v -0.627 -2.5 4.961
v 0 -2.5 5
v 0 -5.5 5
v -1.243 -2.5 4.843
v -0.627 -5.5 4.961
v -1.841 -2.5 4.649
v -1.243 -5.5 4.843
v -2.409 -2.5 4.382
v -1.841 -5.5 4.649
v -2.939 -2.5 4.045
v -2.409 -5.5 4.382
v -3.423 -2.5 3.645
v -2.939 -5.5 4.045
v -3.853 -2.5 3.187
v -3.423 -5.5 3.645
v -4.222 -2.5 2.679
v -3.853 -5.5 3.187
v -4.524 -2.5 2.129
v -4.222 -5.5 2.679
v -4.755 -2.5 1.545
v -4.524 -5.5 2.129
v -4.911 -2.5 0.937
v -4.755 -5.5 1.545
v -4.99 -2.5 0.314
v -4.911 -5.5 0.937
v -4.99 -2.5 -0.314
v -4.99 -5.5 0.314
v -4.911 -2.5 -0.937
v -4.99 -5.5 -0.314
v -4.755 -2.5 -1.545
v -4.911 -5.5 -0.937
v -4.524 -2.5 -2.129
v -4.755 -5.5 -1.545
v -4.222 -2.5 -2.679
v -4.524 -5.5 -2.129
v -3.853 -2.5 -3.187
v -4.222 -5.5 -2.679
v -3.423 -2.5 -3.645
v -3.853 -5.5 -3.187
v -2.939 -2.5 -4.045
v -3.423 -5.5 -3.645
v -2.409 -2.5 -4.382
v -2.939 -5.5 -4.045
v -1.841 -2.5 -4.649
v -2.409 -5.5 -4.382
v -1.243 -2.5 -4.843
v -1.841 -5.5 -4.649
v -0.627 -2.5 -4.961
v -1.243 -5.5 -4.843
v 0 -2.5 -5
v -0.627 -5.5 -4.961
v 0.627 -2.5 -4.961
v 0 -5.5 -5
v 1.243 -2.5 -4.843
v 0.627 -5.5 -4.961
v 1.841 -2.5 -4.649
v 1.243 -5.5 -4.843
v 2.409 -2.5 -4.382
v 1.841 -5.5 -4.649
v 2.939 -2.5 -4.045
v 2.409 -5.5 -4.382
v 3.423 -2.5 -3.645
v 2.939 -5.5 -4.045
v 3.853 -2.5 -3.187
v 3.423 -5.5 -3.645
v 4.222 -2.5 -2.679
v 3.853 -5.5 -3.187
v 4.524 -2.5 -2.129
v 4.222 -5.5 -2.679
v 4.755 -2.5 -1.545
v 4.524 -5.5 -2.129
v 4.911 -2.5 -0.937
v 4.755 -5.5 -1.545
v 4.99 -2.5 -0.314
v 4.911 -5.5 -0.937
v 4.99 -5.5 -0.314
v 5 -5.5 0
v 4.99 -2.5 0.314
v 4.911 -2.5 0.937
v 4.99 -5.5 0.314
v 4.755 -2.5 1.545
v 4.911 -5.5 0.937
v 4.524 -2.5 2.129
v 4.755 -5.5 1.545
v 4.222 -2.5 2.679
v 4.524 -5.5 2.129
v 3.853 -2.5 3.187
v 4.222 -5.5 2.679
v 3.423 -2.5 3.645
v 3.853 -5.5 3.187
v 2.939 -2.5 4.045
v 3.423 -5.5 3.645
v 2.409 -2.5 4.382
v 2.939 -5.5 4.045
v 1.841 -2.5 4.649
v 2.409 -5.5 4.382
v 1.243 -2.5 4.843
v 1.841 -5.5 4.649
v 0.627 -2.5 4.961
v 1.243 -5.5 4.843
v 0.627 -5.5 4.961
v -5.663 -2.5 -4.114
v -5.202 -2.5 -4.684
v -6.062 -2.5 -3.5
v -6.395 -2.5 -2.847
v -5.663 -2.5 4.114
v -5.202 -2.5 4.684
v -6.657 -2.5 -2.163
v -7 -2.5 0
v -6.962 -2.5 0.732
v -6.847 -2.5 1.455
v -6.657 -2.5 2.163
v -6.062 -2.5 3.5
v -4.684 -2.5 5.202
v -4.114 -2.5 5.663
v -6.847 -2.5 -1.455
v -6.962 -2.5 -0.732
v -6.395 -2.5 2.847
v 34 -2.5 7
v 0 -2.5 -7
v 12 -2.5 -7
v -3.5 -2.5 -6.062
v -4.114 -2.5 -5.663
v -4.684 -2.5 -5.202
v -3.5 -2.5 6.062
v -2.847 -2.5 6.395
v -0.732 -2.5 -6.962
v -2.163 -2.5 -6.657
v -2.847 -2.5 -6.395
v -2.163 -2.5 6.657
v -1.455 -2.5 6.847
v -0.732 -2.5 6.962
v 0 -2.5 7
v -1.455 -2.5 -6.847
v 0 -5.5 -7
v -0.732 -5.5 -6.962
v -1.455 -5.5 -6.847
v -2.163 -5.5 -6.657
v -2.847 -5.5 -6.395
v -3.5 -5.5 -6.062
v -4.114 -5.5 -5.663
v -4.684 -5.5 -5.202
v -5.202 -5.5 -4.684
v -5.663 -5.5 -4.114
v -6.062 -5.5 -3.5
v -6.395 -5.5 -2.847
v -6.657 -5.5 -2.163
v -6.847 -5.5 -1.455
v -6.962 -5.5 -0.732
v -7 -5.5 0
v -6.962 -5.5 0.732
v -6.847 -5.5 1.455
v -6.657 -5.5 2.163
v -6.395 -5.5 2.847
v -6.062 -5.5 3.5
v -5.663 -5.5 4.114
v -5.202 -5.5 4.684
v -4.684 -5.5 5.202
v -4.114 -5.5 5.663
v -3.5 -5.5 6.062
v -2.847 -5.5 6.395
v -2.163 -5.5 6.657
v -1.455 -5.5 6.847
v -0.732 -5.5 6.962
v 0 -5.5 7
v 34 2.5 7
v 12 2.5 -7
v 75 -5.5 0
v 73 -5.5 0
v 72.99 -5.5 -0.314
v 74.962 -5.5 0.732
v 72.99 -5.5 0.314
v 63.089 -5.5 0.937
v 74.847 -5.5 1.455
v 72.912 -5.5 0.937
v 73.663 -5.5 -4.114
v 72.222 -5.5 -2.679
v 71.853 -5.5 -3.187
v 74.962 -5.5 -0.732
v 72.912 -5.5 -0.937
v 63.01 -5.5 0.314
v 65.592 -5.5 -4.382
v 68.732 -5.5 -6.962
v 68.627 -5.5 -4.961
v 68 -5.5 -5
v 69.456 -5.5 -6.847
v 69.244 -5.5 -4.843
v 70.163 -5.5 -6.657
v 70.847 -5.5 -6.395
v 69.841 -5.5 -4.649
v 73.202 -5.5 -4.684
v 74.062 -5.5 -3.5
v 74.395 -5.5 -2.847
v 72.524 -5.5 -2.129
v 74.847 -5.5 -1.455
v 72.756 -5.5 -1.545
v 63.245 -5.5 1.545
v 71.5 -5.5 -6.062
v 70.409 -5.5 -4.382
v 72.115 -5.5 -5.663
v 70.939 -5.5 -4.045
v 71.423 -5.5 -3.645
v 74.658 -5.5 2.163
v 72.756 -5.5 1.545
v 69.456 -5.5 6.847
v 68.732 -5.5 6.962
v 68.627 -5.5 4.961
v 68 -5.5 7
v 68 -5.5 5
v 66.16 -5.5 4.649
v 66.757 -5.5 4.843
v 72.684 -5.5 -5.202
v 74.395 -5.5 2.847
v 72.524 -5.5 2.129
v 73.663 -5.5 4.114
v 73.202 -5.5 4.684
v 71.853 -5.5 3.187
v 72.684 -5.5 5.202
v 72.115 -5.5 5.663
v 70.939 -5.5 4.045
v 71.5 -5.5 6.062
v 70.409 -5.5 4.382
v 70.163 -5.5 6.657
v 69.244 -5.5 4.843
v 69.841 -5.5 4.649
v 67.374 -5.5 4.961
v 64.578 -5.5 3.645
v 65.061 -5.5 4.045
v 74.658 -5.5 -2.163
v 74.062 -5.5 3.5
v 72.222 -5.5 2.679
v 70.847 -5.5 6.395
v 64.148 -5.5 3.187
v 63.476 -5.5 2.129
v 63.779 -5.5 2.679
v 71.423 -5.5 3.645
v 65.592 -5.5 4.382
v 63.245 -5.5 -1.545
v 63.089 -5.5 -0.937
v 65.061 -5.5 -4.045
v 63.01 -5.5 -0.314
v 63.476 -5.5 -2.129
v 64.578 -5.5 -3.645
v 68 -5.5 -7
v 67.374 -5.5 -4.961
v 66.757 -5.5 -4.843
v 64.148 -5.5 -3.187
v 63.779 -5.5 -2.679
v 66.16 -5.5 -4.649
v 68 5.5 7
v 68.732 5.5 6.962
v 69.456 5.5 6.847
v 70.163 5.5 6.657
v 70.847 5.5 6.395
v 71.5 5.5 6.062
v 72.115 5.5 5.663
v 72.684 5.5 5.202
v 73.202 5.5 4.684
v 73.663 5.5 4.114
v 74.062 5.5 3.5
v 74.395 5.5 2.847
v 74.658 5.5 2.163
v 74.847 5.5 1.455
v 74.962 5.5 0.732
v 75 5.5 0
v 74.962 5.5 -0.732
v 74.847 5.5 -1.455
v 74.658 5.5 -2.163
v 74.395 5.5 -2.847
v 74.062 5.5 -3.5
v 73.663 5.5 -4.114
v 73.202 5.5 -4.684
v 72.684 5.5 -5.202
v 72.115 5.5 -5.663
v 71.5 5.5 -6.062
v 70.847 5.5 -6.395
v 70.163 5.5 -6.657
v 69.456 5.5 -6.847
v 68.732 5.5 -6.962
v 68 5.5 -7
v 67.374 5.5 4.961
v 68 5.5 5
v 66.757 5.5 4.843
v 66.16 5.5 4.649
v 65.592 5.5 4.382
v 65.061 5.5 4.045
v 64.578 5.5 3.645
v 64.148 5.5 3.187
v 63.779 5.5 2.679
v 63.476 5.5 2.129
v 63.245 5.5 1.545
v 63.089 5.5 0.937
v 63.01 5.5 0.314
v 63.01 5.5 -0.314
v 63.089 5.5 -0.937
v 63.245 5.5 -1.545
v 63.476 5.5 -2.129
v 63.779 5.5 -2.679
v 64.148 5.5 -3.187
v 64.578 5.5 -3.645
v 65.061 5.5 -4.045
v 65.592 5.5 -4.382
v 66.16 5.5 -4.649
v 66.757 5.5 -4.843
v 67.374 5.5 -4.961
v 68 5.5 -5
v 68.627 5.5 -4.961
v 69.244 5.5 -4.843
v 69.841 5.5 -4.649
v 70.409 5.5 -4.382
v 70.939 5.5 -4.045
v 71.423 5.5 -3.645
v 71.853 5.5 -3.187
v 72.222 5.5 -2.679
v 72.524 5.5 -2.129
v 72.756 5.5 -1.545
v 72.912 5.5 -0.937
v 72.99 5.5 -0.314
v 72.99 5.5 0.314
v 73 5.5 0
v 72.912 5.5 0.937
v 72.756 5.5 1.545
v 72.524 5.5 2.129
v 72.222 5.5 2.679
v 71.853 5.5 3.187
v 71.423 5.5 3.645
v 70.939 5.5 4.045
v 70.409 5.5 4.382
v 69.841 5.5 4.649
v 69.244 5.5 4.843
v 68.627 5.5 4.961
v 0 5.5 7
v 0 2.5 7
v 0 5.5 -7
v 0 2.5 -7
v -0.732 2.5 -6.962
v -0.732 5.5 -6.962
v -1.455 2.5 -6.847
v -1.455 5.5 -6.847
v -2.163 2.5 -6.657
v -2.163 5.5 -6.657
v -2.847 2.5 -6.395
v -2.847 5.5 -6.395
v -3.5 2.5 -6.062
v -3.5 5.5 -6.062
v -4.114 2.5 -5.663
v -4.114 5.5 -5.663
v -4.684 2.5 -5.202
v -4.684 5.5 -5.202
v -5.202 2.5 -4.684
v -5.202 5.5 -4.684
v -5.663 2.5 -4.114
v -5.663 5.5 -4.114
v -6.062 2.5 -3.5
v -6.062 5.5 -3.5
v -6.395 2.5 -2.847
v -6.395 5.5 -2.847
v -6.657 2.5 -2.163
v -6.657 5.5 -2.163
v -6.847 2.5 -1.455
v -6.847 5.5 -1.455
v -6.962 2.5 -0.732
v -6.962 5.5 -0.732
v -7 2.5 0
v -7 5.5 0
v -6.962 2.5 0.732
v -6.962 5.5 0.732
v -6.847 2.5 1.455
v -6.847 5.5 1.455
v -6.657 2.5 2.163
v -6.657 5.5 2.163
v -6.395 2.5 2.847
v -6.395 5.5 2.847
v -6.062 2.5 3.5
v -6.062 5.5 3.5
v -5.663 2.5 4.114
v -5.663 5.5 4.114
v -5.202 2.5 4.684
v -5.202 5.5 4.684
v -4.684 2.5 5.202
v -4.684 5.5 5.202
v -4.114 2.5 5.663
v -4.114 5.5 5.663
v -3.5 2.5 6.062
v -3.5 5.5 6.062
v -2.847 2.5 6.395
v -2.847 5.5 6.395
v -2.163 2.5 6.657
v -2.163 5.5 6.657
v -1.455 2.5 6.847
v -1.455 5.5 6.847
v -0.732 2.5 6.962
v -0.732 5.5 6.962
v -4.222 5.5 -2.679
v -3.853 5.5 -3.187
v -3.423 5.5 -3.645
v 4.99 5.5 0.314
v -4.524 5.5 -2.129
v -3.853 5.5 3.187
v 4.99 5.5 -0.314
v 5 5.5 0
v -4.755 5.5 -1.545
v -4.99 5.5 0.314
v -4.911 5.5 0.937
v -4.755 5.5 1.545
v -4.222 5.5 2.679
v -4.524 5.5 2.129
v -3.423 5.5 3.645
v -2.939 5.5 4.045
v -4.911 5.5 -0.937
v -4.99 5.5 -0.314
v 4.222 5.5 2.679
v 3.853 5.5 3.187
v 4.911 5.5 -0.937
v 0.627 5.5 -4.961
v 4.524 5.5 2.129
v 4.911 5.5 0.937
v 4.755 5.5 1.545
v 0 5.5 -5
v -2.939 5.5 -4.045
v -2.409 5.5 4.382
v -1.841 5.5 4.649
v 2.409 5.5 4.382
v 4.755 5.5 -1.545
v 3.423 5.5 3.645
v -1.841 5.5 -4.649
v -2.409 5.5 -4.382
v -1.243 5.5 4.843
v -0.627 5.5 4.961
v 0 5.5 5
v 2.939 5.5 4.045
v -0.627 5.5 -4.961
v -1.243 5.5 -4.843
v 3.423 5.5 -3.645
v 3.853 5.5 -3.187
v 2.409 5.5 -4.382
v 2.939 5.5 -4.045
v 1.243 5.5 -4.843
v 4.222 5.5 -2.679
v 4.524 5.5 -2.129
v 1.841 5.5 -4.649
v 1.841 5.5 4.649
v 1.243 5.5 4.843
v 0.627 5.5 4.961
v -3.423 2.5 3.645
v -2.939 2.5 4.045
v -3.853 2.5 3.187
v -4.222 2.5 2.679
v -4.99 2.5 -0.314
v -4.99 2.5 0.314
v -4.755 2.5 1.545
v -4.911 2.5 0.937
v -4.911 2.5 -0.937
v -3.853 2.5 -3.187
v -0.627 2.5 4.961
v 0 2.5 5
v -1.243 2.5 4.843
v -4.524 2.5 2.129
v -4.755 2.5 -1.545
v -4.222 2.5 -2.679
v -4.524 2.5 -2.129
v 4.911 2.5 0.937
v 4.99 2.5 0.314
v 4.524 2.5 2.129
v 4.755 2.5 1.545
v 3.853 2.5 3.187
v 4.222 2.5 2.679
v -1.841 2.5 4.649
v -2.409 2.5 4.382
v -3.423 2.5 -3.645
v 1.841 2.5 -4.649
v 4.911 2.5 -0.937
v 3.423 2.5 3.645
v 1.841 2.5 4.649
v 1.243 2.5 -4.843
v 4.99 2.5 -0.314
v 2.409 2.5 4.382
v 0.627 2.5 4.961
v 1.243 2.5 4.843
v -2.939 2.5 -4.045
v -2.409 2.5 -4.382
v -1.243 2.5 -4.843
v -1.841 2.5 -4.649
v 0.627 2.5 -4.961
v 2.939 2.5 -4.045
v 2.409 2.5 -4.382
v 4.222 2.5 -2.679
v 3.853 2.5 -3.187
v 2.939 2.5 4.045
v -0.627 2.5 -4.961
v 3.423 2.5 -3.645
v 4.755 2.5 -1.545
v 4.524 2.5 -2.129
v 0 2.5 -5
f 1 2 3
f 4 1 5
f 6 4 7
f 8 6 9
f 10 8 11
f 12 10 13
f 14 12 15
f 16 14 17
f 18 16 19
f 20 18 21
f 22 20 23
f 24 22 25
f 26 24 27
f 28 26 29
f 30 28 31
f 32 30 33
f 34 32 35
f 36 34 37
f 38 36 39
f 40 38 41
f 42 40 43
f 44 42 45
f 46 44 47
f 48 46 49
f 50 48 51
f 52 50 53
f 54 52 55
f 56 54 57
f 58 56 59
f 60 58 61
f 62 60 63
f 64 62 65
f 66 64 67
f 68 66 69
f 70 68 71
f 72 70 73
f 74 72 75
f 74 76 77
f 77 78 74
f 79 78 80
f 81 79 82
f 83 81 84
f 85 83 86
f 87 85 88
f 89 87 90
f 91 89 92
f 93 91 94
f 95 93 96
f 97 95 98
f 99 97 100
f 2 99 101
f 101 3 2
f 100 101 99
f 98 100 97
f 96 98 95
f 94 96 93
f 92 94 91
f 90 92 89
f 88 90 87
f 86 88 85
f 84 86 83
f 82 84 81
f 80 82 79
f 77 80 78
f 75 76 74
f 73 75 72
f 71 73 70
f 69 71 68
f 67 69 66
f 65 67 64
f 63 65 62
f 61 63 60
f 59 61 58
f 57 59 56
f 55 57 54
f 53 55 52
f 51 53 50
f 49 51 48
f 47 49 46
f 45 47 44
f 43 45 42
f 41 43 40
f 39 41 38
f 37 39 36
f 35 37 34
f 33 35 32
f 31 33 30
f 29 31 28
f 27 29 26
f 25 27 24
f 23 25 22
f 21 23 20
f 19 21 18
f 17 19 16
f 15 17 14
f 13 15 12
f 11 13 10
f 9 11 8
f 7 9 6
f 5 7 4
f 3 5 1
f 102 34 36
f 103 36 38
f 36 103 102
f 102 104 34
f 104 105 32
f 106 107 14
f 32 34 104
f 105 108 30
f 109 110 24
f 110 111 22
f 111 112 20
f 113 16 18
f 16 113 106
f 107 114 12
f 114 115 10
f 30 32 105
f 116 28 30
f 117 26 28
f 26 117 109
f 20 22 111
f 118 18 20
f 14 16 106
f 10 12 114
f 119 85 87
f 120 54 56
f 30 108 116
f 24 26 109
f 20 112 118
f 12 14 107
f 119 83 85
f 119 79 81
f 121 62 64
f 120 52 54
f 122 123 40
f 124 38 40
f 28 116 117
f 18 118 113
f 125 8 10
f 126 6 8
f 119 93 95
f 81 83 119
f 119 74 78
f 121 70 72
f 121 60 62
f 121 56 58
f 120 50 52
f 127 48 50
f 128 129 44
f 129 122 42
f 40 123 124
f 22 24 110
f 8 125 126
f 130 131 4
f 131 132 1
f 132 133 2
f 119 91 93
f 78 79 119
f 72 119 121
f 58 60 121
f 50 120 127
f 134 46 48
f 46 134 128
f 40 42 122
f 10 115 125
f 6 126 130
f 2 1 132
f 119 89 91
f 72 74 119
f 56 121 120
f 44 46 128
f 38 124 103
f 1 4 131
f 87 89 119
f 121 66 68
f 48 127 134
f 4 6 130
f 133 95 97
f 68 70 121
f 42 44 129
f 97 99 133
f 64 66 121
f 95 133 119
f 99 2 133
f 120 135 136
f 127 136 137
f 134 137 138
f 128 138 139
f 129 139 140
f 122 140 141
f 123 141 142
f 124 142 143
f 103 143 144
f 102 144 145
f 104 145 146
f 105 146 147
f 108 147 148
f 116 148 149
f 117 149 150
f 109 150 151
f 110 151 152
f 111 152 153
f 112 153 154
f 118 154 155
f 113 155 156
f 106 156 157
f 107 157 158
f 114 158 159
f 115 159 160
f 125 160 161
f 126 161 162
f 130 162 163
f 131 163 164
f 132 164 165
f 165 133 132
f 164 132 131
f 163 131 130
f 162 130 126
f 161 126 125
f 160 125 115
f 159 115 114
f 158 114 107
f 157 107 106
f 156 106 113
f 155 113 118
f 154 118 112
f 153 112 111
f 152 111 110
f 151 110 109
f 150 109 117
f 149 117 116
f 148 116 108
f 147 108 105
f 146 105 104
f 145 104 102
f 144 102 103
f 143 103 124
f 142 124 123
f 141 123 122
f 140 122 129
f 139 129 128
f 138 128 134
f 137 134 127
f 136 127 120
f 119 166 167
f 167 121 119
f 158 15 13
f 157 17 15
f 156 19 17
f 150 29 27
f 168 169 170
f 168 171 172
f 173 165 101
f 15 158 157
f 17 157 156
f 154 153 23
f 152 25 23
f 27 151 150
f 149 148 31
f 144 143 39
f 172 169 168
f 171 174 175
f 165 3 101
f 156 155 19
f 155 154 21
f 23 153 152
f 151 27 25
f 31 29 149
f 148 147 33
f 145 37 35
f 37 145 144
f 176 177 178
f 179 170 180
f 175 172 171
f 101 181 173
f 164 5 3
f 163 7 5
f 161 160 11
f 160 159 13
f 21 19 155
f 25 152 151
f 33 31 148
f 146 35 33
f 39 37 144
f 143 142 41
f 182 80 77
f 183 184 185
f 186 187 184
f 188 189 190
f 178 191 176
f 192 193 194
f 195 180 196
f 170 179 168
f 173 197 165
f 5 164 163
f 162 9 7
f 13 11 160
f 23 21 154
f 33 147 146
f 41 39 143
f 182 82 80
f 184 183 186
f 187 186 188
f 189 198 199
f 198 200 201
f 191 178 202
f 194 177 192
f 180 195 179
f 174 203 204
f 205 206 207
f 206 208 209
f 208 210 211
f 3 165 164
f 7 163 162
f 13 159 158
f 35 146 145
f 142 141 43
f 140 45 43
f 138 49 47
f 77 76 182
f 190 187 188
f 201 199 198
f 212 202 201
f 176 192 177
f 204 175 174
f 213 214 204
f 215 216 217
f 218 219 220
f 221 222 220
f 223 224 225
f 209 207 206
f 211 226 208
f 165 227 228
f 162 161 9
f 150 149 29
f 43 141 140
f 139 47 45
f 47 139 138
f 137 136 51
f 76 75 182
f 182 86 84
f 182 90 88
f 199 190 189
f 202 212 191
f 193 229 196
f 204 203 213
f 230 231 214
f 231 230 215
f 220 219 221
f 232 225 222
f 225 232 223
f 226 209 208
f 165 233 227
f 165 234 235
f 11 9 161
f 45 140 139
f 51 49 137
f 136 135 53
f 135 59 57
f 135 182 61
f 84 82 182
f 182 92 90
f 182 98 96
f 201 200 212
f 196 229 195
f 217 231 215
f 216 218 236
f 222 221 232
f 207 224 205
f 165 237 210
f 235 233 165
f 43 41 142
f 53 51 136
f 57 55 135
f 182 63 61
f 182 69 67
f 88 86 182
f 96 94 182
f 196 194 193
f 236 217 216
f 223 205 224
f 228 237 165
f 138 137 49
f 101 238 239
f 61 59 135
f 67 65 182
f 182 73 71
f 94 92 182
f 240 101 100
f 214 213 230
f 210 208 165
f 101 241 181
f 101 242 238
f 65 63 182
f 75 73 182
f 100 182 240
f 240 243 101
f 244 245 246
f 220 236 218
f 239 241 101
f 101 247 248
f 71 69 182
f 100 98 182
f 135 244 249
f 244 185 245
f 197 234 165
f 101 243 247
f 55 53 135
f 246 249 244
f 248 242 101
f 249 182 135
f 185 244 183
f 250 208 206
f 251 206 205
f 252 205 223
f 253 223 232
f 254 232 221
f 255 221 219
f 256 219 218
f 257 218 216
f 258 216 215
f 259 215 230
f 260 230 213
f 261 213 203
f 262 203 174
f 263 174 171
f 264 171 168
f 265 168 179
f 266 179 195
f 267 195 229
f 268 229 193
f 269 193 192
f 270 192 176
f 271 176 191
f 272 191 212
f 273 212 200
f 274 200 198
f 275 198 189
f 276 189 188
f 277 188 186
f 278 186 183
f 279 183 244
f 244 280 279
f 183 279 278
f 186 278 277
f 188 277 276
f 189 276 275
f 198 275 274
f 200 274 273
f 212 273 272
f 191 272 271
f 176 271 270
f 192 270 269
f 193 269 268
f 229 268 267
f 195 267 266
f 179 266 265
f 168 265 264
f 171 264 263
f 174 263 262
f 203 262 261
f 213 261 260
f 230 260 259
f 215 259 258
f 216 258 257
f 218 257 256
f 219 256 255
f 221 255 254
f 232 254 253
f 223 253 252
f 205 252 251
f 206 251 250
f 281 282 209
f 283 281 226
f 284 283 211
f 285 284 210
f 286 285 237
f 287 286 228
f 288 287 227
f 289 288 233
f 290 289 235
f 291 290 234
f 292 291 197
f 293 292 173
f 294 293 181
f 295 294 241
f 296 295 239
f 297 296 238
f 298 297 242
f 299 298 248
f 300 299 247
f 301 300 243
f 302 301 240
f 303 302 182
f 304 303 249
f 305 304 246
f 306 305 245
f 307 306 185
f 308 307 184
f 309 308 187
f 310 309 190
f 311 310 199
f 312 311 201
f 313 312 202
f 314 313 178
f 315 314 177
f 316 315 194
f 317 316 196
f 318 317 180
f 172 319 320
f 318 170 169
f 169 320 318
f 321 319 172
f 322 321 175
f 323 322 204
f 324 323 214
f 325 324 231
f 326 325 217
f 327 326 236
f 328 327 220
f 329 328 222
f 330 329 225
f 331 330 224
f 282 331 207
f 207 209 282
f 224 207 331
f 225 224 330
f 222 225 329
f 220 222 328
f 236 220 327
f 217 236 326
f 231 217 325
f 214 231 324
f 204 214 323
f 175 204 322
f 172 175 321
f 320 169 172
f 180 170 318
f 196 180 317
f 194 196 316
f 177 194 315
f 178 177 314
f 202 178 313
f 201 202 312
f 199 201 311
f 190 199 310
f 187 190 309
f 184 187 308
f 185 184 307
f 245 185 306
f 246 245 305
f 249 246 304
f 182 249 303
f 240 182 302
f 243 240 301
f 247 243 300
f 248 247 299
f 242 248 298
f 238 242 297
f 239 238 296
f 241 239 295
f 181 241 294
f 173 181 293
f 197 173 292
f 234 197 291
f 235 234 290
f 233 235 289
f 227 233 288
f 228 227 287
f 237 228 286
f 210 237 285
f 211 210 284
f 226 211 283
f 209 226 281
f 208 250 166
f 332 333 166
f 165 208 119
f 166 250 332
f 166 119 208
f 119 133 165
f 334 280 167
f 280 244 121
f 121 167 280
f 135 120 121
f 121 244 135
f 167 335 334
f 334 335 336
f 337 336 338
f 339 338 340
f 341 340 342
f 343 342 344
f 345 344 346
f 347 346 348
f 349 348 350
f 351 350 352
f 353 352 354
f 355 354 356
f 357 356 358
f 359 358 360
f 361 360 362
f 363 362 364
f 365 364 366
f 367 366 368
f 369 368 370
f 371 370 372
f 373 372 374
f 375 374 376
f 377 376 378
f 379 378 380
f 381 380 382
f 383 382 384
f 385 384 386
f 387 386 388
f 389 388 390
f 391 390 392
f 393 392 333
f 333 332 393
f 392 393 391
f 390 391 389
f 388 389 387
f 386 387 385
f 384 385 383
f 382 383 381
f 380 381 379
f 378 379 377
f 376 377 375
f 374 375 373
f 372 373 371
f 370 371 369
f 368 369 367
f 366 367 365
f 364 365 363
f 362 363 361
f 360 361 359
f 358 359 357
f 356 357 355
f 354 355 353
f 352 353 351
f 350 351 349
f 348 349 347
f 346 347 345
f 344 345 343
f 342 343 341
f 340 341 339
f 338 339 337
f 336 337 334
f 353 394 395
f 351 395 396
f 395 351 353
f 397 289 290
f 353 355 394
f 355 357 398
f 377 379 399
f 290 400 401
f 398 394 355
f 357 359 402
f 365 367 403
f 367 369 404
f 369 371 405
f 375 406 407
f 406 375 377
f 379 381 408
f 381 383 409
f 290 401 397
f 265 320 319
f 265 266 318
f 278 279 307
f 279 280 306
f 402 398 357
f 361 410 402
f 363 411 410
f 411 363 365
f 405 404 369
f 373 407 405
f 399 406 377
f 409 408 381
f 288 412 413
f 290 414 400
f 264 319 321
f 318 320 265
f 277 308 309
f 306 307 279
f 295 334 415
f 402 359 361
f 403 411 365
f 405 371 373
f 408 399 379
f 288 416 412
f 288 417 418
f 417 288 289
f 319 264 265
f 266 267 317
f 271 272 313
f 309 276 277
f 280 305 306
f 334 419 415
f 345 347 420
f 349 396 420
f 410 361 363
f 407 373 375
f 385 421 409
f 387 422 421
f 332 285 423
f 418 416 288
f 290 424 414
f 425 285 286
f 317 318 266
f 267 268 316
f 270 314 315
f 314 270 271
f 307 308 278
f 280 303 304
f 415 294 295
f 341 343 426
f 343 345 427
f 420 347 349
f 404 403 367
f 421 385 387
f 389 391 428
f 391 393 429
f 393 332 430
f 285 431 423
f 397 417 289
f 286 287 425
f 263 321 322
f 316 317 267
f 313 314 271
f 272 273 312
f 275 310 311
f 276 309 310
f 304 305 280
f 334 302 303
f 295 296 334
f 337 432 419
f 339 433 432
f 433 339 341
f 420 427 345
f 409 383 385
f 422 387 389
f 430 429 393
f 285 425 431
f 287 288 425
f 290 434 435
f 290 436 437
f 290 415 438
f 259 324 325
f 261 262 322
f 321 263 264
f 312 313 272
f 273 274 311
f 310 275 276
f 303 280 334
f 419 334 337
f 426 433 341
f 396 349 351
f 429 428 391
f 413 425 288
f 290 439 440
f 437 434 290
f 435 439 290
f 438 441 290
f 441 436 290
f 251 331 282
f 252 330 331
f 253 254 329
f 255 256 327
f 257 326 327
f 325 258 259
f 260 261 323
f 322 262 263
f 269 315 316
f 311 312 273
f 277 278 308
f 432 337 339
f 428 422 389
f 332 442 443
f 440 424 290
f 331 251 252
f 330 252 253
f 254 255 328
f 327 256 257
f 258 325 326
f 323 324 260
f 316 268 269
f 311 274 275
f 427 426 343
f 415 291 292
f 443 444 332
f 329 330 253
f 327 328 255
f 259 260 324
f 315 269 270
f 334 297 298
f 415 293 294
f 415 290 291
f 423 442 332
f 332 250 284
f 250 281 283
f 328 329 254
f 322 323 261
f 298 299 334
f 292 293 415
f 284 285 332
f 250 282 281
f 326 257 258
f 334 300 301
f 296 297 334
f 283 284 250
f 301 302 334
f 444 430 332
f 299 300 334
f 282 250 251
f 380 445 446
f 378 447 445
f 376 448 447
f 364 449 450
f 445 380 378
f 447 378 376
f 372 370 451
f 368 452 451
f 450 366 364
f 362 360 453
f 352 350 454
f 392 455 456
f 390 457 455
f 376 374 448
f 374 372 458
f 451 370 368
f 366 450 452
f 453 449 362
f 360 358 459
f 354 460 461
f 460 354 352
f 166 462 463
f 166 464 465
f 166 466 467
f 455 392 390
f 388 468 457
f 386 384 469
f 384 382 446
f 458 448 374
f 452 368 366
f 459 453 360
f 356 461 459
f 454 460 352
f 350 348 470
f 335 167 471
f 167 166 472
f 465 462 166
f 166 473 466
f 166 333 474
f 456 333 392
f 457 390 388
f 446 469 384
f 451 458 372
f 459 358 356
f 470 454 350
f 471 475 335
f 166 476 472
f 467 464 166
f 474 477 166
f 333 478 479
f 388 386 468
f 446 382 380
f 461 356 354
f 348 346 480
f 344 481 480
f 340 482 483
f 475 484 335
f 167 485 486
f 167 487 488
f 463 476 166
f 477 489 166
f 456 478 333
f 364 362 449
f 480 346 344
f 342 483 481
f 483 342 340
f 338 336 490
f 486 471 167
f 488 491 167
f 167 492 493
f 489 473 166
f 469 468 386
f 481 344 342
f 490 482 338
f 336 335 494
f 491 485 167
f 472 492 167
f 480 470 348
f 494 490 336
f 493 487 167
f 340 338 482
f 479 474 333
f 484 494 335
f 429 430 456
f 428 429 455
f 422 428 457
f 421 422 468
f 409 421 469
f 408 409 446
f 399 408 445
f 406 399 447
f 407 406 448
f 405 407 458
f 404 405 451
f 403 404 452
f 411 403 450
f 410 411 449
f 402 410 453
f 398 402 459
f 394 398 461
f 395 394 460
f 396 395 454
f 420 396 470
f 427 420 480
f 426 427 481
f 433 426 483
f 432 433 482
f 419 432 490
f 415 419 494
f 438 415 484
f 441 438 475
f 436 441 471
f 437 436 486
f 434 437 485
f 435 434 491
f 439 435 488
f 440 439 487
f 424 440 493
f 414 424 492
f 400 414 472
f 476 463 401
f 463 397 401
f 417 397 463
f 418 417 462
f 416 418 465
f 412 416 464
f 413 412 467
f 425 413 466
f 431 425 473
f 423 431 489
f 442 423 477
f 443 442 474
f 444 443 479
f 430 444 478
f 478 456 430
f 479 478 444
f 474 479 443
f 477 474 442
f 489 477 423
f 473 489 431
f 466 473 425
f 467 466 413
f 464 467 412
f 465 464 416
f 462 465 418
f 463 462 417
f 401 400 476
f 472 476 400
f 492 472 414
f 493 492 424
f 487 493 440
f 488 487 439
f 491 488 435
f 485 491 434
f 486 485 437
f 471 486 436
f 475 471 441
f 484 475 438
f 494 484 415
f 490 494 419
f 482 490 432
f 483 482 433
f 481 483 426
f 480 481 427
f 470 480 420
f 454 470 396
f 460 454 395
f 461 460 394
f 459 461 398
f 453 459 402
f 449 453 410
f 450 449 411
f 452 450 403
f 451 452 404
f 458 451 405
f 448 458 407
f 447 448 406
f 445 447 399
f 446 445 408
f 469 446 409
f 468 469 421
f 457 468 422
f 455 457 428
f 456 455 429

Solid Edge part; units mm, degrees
sketch "Sketch1" plane through (0, 0, 0) normal (0, -1, 0) x (1, 0, 0)
  circle A0 centre (0, 0) radius 5
  line L0 (0, 7) -> (68.0003, 7)
  line L1 (0, -7) -> (68.0003, -7)
  arc A1 (0, -7) -> (0, 7) centre (0, 0) cw
  arc A2 (68.0003, 7) -> (68.0003, -7) centre (68.0003, 0) cw
  circle A3 centre (68.0003, 0) radius 5
extrude "Protrusion1" add sketch "Sketch1" along normal mid plane 11
fillet "Redondeo_1" [suppressed]
sketch "Sketch2" plane through (34.0002, 0, 0) normal (0, -1, 0) x (1, 0, 0)
  line L0 (-22.0002, -7) -> (0, 7)
  line L1 (-34.0002, -7) -> (-22.0002, -7)
  arc A0 (-34.0002, -7) -> (-34.0002, 7) centre (-34.0002, 0) cw
  line L2 (0, 7) -> (-34.0002, 7)
  dimension "D1" = 12
  dimension "D2" = 34.0002
extrude "Cutout1" cut sketch "Sketch2" along normal mid plane 5
